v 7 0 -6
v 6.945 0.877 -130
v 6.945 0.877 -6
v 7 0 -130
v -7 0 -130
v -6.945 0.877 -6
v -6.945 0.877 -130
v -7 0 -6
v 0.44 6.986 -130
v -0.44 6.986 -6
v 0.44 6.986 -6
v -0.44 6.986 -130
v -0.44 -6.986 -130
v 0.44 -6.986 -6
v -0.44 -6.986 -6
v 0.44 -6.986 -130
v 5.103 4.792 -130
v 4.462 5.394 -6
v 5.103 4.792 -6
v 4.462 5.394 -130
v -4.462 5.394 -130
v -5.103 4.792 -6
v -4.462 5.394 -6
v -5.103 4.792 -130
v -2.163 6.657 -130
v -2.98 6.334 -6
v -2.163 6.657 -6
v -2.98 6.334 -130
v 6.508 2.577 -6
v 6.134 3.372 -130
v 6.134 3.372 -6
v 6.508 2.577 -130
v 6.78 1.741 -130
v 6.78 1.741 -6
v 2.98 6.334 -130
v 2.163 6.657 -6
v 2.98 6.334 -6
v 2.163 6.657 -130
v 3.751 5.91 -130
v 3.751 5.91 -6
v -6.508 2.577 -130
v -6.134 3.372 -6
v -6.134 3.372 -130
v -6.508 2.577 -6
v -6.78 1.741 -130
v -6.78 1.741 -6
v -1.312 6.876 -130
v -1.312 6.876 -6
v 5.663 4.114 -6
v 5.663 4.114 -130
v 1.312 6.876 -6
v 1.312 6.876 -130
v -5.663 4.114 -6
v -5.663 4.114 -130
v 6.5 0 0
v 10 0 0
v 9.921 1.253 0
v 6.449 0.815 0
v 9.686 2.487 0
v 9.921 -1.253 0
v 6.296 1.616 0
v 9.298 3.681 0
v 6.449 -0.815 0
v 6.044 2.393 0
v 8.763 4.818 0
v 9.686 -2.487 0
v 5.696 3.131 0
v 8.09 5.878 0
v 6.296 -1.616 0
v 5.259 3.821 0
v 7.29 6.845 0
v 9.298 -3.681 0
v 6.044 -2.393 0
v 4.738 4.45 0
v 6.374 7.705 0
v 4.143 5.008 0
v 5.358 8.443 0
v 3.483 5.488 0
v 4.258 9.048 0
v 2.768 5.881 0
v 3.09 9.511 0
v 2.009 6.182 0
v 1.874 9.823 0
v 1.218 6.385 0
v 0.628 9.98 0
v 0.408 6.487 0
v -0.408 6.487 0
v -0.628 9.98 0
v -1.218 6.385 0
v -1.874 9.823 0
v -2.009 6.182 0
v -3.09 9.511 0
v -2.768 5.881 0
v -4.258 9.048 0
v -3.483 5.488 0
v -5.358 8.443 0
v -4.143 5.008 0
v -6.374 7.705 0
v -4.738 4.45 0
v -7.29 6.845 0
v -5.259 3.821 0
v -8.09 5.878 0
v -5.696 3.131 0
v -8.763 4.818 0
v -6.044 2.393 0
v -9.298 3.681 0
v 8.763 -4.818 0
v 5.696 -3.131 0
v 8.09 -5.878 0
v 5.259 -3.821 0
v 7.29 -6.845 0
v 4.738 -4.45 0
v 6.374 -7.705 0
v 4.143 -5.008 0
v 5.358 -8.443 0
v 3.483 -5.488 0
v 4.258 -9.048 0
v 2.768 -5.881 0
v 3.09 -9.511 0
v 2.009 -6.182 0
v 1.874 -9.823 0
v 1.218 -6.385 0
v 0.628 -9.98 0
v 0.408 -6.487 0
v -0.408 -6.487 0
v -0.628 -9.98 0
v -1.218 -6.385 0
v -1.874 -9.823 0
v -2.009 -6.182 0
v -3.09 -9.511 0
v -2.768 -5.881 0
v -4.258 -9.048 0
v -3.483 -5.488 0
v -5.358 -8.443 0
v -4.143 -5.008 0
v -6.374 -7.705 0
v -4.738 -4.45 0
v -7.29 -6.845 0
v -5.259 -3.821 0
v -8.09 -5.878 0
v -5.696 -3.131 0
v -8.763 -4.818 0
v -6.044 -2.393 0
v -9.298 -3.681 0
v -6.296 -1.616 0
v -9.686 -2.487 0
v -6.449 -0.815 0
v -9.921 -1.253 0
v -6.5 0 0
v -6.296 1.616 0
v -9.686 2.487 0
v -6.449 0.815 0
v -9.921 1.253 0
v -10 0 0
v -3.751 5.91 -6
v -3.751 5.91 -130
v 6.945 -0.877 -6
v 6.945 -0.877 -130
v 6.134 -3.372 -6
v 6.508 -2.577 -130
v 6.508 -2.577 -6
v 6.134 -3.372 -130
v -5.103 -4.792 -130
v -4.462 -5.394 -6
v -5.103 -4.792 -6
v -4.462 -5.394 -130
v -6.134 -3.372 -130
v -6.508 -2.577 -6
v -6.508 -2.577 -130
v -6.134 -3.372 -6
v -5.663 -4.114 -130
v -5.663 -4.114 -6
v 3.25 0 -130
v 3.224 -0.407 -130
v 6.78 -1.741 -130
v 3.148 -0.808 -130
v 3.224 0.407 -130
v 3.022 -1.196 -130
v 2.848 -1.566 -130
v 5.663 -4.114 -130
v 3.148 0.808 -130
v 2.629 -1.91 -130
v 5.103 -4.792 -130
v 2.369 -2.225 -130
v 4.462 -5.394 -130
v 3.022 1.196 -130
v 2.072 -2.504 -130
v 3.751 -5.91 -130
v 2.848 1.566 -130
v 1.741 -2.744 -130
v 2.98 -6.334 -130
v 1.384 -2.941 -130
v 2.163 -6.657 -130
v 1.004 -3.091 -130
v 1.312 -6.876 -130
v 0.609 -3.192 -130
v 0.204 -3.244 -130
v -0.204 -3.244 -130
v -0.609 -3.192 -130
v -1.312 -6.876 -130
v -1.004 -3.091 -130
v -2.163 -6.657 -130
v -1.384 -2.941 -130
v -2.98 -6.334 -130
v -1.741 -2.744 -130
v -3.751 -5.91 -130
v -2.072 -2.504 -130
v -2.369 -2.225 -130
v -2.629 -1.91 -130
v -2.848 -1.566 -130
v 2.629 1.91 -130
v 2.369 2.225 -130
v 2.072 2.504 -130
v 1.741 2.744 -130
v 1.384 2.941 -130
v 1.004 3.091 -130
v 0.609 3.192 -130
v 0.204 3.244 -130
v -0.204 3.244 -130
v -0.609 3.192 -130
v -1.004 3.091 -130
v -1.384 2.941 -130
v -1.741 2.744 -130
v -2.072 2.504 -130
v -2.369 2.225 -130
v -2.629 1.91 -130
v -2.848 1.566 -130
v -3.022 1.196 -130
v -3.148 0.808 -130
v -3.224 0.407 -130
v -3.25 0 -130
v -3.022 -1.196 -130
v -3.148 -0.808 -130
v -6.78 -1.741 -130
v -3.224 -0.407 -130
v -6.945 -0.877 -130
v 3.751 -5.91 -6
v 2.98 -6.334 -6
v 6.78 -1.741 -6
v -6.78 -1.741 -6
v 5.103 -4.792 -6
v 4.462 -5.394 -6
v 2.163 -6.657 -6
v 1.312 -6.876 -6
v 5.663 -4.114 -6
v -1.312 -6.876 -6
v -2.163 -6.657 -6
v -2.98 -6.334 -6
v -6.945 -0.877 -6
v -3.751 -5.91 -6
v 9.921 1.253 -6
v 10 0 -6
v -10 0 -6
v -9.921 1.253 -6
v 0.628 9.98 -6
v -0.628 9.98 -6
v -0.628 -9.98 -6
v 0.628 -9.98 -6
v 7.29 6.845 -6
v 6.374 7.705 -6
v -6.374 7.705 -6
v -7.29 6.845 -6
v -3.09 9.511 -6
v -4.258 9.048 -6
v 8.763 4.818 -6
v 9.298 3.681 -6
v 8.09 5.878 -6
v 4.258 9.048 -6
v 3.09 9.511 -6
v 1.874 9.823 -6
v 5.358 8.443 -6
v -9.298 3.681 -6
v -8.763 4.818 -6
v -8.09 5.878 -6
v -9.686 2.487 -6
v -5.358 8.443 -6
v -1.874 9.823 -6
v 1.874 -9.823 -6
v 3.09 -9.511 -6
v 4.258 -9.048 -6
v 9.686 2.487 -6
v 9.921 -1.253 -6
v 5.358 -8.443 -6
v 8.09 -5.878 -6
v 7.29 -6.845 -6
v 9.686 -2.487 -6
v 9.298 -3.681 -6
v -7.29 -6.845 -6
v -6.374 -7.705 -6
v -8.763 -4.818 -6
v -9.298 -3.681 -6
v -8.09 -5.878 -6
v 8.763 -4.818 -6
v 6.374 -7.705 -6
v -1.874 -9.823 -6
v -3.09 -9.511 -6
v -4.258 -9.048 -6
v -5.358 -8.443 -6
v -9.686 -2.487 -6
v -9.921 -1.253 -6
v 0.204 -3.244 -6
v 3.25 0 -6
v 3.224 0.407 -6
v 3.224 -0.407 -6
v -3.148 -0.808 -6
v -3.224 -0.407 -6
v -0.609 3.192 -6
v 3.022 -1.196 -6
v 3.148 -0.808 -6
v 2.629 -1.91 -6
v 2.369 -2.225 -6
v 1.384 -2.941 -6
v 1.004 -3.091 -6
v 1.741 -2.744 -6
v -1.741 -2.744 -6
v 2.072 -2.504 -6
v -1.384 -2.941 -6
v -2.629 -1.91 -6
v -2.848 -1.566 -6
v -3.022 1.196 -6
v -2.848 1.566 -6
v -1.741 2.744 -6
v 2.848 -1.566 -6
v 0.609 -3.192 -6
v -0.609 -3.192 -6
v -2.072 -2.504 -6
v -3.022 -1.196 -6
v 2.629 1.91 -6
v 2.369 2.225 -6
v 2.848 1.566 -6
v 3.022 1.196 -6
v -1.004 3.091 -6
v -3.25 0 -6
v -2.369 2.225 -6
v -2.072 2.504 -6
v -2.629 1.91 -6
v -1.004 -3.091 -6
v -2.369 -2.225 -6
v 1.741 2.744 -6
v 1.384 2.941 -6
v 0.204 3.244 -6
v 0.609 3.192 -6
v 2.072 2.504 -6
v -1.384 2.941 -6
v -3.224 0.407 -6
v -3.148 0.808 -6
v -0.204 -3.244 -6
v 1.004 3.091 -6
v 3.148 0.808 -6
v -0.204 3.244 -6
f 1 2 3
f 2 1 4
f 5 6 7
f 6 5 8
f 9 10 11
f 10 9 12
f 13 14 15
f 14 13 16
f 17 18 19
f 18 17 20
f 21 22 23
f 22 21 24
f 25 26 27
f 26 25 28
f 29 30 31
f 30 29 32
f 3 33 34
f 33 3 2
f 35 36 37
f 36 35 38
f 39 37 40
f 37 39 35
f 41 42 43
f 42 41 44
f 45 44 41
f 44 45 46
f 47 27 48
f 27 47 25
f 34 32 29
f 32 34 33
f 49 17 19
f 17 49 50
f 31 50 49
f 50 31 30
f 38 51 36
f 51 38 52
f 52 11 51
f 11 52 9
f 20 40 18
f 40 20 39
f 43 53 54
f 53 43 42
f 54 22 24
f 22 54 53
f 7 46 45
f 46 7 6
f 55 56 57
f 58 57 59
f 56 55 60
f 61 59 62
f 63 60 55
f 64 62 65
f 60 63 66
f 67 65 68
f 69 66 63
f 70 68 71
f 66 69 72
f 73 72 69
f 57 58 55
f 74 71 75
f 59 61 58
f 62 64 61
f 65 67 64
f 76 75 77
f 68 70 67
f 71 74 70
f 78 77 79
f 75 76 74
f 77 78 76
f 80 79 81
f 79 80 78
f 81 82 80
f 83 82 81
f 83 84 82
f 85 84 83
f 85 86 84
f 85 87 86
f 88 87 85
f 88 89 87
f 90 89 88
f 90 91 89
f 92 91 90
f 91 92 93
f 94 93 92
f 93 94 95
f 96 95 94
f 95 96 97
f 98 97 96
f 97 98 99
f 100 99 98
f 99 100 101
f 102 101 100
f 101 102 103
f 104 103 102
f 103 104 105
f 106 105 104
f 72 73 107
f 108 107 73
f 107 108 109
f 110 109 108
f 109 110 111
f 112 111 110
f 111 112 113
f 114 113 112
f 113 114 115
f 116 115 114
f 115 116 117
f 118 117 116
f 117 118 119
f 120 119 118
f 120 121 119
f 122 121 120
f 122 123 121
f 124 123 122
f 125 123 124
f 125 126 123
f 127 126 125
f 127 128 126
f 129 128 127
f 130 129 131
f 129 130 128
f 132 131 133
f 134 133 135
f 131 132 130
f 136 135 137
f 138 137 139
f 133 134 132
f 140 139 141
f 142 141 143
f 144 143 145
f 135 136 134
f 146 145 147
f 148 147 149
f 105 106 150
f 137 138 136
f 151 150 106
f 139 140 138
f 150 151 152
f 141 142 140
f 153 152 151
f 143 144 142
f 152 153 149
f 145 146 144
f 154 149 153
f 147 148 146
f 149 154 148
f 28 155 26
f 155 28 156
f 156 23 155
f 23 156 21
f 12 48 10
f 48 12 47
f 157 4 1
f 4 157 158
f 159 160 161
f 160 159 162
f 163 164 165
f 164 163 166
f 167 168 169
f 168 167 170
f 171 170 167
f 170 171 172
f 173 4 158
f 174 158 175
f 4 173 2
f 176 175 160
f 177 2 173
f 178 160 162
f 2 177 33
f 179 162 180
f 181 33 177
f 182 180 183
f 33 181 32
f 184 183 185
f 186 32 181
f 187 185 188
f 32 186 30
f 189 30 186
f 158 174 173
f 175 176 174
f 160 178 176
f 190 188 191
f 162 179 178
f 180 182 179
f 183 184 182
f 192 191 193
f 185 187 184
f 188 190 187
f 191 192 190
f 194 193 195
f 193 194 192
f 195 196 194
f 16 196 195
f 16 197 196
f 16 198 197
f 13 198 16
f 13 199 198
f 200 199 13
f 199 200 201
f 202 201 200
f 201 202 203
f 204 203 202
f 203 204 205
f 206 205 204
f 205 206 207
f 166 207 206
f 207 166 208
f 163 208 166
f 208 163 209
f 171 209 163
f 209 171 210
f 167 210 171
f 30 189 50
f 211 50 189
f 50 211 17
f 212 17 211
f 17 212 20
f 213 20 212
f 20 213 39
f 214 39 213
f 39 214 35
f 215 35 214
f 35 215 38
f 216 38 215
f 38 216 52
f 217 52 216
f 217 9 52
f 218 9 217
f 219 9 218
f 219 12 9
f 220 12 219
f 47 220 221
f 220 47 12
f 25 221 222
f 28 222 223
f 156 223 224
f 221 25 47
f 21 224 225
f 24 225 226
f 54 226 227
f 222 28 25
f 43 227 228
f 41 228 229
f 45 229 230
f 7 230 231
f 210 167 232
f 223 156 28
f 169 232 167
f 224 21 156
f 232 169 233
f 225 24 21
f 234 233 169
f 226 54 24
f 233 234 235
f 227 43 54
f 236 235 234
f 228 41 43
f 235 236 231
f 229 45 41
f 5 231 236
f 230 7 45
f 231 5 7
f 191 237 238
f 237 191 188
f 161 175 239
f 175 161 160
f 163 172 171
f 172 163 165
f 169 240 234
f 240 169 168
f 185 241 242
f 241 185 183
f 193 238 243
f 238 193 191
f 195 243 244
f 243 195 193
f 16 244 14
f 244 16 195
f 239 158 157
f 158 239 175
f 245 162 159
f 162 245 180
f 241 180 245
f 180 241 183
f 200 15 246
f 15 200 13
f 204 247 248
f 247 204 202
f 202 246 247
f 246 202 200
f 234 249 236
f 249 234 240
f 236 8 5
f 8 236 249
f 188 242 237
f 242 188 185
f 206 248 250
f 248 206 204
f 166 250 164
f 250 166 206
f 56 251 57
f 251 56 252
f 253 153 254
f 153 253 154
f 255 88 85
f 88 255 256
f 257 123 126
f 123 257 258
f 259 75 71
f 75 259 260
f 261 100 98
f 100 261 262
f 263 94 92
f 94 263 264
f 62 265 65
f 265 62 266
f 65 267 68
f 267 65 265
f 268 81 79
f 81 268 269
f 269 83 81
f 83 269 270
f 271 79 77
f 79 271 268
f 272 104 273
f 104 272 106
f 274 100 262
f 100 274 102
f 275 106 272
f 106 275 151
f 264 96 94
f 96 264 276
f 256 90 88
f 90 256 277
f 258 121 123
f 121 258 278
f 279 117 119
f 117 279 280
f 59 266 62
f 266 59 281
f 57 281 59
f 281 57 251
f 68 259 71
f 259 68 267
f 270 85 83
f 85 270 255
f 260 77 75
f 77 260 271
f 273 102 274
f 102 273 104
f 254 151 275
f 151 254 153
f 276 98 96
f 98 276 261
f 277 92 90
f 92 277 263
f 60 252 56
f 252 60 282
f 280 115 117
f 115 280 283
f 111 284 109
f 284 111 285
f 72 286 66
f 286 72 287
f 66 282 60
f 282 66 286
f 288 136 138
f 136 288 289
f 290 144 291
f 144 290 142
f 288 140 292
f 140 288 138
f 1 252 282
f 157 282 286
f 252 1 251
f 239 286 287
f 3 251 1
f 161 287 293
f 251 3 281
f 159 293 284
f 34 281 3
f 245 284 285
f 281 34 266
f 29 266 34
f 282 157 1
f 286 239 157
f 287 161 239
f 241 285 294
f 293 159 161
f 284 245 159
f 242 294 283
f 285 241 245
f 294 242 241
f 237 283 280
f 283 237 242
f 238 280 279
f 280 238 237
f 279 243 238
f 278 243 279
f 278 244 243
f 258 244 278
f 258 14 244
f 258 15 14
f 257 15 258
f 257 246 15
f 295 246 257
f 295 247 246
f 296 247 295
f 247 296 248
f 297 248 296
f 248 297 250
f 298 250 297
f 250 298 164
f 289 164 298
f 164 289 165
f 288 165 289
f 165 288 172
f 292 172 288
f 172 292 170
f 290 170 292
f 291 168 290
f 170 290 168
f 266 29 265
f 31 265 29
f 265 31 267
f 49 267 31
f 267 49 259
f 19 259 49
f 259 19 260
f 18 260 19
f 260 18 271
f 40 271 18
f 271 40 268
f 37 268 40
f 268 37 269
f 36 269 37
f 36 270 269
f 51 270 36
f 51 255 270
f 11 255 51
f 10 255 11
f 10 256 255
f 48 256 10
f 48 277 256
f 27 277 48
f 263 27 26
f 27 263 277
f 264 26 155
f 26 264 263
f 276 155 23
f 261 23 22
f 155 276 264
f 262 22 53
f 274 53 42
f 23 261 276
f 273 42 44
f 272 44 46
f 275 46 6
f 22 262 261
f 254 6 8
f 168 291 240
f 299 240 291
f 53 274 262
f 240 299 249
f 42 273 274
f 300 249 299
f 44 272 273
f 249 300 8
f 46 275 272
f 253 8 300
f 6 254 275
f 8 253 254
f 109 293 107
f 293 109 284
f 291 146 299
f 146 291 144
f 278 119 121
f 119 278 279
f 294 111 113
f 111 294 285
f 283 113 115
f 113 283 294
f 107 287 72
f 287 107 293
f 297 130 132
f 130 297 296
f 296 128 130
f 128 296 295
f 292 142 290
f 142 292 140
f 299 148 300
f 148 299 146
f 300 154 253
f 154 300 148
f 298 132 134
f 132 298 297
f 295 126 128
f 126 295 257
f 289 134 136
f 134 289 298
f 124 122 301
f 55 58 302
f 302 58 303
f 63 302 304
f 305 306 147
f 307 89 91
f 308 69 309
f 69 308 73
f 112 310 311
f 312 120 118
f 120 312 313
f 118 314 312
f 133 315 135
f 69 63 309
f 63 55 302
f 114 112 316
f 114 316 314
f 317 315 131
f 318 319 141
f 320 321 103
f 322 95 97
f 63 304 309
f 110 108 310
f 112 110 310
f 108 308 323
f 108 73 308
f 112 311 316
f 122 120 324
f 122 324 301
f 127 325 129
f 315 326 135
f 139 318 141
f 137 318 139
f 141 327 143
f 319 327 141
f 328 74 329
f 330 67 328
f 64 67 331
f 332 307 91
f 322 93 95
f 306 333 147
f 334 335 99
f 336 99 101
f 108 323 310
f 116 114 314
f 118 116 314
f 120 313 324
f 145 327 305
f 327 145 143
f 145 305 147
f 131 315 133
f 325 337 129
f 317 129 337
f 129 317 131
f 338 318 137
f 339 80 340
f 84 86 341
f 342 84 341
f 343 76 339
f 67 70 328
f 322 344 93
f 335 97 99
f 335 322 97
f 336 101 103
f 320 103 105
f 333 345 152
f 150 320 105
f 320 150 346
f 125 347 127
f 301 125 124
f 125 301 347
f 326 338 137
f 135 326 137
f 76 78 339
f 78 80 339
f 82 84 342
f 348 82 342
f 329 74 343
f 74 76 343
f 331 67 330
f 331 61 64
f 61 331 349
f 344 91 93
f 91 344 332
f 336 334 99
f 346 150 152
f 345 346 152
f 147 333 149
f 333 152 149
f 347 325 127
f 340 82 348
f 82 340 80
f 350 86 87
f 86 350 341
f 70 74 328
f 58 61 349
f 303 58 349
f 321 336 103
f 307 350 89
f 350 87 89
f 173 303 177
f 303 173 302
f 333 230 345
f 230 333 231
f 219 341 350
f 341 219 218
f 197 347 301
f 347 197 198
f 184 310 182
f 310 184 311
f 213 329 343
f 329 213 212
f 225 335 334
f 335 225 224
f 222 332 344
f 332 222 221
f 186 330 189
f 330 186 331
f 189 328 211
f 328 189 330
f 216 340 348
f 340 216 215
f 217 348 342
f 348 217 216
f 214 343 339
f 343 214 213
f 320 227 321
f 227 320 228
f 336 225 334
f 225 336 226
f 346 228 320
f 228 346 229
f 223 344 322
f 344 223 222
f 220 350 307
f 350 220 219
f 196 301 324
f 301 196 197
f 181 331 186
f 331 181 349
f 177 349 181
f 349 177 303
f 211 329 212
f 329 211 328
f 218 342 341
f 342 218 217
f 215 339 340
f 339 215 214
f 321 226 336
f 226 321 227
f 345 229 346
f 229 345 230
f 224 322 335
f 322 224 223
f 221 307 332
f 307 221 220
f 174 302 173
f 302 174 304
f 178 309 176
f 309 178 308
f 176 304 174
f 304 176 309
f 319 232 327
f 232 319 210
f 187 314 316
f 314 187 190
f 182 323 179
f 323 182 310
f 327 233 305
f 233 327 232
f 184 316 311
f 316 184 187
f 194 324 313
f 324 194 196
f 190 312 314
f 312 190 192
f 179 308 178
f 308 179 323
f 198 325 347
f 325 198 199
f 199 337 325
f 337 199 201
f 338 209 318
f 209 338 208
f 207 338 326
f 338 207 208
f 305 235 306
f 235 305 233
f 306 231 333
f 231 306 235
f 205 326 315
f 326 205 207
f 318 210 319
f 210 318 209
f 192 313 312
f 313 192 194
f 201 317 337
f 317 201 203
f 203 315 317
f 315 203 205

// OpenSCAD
$fn = 50;


difference() {
	union() {
		translate(v = [0, 0, -130.0000000000]) {
			cylinder(h = 130, r = 7.0000000000);
		}
		translate(v = [0, 0, -6.0000000000]) {
			cylinder(h = 6, r = 10.0000000000);
		}
	}
	union() {
		translate(v = [0, 0, 0]) {
			rotate(a = [0, 0, 0]) {
				difference() {
					union() {
						#translate(v = [0, 0, -130.0000000000]) {
							cylinder(h = 130, r = 2.2500000000);
						}
						#translate(v = [0, 0, -6]) {
							cylinder(h = 6, r1 = 3.2500000000, r2 = 6.5000000000);
						}
						#translate(v = [0, 0, -130.0000000000]) {
							cylinder(h = 130, r = 3.2500000000);
						}
						#translate(v = [0, 0, -130.0000000000]) {
							cylinder(h = 130, r = 2.2500000000);
						}
					}
					union();
				}
			}
		}
	}
}
